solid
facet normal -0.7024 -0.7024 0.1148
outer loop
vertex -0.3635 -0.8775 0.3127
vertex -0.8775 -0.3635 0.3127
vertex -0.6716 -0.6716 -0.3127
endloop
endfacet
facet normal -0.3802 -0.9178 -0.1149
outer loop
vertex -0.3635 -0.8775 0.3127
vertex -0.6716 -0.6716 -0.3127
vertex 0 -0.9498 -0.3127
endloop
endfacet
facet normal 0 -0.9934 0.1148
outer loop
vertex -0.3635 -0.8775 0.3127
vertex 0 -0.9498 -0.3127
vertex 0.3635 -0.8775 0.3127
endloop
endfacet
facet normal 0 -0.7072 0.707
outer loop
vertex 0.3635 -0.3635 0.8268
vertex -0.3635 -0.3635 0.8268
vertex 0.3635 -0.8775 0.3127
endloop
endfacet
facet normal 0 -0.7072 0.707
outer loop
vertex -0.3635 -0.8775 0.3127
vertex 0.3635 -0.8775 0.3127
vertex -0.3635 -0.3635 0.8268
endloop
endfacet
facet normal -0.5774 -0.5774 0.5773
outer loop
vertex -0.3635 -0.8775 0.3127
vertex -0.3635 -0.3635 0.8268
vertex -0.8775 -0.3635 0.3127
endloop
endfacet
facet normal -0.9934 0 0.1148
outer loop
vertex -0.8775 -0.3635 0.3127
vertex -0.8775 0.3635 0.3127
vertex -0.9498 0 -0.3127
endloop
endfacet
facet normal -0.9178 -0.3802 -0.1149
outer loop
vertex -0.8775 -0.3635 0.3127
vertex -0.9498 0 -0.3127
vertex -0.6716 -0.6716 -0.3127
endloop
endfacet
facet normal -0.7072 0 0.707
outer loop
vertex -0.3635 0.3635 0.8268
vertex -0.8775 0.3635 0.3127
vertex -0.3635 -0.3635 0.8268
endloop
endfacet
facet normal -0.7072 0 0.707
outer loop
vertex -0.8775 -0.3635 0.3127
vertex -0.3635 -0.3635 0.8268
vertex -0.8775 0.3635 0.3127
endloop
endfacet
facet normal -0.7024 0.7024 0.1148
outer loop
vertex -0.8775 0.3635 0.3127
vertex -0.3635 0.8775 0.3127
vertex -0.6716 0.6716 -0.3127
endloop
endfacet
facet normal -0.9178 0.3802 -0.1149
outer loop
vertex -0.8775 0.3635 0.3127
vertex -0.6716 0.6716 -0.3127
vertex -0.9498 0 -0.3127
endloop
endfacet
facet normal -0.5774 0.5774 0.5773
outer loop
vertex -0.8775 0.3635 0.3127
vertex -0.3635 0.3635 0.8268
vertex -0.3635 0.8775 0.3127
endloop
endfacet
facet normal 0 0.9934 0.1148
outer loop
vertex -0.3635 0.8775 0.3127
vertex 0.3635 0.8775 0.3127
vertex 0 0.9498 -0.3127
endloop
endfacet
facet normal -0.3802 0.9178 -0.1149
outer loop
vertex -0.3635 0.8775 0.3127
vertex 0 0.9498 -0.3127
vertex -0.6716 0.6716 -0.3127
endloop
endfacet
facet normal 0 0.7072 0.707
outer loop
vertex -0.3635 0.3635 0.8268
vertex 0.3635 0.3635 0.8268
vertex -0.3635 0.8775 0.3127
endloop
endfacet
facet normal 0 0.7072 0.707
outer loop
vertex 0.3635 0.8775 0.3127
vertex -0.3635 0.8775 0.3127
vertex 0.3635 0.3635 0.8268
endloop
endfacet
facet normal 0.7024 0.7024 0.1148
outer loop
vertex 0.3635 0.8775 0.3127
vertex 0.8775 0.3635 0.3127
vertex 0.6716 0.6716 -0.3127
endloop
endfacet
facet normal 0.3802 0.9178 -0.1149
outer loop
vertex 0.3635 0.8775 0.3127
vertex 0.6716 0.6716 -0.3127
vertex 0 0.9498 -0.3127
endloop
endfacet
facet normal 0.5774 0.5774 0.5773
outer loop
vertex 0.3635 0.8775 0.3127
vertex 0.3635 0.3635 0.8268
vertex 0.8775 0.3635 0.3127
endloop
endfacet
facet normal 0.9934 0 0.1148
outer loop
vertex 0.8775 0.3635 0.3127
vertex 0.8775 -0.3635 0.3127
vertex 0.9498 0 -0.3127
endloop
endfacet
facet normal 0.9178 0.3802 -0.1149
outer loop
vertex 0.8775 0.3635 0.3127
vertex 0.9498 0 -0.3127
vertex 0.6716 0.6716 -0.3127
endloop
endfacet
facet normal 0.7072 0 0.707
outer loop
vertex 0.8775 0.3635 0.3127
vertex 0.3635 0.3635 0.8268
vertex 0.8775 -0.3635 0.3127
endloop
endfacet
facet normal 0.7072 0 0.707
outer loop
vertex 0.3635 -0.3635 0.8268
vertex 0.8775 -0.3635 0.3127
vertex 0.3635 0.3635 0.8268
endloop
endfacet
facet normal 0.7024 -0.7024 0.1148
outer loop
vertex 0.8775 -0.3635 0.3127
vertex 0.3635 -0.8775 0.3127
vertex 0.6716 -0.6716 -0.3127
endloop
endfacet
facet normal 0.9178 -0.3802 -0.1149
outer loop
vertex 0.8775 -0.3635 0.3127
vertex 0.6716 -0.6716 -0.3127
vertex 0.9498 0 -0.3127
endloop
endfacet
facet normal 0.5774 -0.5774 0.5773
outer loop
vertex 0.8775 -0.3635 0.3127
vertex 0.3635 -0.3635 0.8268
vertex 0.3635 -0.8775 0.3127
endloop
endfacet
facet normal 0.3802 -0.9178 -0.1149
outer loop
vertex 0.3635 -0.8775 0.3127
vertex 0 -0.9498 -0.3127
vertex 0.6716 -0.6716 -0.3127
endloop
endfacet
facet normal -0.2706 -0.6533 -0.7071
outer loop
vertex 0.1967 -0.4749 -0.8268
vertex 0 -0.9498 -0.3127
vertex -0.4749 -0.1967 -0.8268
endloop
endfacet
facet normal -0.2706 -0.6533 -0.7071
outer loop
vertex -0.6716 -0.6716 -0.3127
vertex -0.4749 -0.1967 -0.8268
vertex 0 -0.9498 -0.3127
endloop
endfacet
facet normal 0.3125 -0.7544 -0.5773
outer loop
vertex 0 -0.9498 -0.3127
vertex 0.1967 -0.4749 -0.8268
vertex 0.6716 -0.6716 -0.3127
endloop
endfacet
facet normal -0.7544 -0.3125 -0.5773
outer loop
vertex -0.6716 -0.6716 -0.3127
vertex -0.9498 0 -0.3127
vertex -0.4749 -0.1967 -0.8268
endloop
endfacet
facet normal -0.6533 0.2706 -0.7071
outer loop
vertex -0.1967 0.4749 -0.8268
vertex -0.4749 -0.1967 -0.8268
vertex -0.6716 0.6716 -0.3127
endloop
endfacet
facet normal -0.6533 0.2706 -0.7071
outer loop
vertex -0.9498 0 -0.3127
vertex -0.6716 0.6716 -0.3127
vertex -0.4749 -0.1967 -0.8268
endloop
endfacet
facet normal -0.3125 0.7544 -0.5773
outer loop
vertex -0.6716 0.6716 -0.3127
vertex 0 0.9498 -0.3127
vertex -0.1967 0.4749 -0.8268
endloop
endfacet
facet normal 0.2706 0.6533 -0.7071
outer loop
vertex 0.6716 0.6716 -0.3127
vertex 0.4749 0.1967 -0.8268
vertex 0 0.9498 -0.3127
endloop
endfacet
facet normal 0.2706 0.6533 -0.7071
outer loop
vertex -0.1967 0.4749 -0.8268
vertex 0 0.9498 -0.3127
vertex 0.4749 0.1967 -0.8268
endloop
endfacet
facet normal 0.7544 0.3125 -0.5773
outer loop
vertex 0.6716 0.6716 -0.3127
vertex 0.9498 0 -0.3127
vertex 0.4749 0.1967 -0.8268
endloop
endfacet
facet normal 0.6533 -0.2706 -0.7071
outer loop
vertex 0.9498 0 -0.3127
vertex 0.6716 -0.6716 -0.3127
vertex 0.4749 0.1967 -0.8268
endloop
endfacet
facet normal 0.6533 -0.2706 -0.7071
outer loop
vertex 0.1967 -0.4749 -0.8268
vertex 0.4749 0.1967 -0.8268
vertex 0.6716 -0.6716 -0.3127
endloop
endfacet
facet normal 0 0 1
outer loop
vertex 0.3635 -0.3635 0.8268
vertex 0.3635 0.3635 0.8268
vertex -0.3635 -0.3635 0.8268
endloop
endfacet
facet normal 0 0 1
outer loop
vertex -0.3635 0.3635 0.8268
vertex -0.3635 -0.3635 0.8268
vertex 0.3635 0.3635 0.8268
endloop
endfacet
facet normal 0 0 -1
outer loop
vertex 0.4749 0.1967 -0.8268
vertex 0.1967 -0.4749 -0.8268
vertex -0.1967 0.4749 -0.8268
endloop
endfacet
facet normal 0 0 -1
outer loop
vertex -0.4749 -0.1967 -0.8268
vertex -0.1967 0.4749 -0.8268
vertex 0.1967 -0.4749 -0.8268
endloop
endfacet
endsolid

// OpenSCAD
polyhedron( points = [[-0.36349134208315, -0.877545727803311, 0.312709991161936], [-0.877545727915941, -0.363491341901282, 0.312709991161936], [-0.877545728198493, 0.363491342389779, 0.312709991161936], [-0.363491342765293, 0.877545728245649, 0.312709991161936], [0.363491341210583, 0.877545728245649, 0.312709991161936], [0.877545727089539, 0.363491342389786, 0.312709991161936], [0.877545727437357, -0.363491341901283, 0.312709991161936], [0.363491342050318, -0.877545727803311, 0.312709991161936], [2.42803778047608e-12, -0.94984865112293, -0.312709991363965], [-0.671644422361978, -0.671644422225525, -0.312709991363965], [-0.949848650832769, -8.5839525478575e-11, -0.312709991291029], [-0.671644421660715, 0.671644421920272, -0.312709991187882], [8.2358689612518e-10, 0.949848650495175, -0.312709991114946], [0.671644423042395, 0.671644421658078, -0.312709991114946], [0.949848651573491, -4.5662978112848e-10, -0.312709991187882], [0.671644422461747, -0.671644422487714, -0.312709991291029], [-0.363491342050511, -0.363491341688357, 0.826764376781803], [0.363491341885963, -0.363491341873813, 0.826764376596348], [0.36349134137417, 0.363491342334063, 0.826764376847081], [-0.36349134250978, 0.363491342307412, 0.82676437684708], [0.196720096870022, -0.474924325373596, -0.826764376678341], [-0.474924325383355, -0.196720096722916, -0.82676437649288], [-0.196720096091649, 0.474924325143594, -0.826764376640472], [0.474924326032036, 0.196720096317053, -0.826764376640465]], faces = [[0, 1, 9], [0, 9, 8], [0, 8, 7], [0, 7, 17, 16], [0, 16, 1], [1, 2, 10], [1, 10, 9], [1, 16, 19, 2], [2, 3, 11], [2, 11, 10], [2, 19, 3], [3, 4, 12], [3, 12, 11], [3, 19, 18, 4], [4, 5, 13], [4, 13, 12], [4, 18, 5], [5, 6, 14], [5, 14, 13], [5, 18, 17, 6], [6, 7, 15], [6, 15, 14], [6, 17, 7], [7, 8, 15], [8, 9, 21, 20], [8, 20, 15], [9, 10, 21], [10, 11, 22, 21], [11, 12, 22], [12, 13, 23, 22], [13, 14, 23], [14, 15, 20, 23], [16, 17, 18, 19], [20, 21, 22, 23]]);
